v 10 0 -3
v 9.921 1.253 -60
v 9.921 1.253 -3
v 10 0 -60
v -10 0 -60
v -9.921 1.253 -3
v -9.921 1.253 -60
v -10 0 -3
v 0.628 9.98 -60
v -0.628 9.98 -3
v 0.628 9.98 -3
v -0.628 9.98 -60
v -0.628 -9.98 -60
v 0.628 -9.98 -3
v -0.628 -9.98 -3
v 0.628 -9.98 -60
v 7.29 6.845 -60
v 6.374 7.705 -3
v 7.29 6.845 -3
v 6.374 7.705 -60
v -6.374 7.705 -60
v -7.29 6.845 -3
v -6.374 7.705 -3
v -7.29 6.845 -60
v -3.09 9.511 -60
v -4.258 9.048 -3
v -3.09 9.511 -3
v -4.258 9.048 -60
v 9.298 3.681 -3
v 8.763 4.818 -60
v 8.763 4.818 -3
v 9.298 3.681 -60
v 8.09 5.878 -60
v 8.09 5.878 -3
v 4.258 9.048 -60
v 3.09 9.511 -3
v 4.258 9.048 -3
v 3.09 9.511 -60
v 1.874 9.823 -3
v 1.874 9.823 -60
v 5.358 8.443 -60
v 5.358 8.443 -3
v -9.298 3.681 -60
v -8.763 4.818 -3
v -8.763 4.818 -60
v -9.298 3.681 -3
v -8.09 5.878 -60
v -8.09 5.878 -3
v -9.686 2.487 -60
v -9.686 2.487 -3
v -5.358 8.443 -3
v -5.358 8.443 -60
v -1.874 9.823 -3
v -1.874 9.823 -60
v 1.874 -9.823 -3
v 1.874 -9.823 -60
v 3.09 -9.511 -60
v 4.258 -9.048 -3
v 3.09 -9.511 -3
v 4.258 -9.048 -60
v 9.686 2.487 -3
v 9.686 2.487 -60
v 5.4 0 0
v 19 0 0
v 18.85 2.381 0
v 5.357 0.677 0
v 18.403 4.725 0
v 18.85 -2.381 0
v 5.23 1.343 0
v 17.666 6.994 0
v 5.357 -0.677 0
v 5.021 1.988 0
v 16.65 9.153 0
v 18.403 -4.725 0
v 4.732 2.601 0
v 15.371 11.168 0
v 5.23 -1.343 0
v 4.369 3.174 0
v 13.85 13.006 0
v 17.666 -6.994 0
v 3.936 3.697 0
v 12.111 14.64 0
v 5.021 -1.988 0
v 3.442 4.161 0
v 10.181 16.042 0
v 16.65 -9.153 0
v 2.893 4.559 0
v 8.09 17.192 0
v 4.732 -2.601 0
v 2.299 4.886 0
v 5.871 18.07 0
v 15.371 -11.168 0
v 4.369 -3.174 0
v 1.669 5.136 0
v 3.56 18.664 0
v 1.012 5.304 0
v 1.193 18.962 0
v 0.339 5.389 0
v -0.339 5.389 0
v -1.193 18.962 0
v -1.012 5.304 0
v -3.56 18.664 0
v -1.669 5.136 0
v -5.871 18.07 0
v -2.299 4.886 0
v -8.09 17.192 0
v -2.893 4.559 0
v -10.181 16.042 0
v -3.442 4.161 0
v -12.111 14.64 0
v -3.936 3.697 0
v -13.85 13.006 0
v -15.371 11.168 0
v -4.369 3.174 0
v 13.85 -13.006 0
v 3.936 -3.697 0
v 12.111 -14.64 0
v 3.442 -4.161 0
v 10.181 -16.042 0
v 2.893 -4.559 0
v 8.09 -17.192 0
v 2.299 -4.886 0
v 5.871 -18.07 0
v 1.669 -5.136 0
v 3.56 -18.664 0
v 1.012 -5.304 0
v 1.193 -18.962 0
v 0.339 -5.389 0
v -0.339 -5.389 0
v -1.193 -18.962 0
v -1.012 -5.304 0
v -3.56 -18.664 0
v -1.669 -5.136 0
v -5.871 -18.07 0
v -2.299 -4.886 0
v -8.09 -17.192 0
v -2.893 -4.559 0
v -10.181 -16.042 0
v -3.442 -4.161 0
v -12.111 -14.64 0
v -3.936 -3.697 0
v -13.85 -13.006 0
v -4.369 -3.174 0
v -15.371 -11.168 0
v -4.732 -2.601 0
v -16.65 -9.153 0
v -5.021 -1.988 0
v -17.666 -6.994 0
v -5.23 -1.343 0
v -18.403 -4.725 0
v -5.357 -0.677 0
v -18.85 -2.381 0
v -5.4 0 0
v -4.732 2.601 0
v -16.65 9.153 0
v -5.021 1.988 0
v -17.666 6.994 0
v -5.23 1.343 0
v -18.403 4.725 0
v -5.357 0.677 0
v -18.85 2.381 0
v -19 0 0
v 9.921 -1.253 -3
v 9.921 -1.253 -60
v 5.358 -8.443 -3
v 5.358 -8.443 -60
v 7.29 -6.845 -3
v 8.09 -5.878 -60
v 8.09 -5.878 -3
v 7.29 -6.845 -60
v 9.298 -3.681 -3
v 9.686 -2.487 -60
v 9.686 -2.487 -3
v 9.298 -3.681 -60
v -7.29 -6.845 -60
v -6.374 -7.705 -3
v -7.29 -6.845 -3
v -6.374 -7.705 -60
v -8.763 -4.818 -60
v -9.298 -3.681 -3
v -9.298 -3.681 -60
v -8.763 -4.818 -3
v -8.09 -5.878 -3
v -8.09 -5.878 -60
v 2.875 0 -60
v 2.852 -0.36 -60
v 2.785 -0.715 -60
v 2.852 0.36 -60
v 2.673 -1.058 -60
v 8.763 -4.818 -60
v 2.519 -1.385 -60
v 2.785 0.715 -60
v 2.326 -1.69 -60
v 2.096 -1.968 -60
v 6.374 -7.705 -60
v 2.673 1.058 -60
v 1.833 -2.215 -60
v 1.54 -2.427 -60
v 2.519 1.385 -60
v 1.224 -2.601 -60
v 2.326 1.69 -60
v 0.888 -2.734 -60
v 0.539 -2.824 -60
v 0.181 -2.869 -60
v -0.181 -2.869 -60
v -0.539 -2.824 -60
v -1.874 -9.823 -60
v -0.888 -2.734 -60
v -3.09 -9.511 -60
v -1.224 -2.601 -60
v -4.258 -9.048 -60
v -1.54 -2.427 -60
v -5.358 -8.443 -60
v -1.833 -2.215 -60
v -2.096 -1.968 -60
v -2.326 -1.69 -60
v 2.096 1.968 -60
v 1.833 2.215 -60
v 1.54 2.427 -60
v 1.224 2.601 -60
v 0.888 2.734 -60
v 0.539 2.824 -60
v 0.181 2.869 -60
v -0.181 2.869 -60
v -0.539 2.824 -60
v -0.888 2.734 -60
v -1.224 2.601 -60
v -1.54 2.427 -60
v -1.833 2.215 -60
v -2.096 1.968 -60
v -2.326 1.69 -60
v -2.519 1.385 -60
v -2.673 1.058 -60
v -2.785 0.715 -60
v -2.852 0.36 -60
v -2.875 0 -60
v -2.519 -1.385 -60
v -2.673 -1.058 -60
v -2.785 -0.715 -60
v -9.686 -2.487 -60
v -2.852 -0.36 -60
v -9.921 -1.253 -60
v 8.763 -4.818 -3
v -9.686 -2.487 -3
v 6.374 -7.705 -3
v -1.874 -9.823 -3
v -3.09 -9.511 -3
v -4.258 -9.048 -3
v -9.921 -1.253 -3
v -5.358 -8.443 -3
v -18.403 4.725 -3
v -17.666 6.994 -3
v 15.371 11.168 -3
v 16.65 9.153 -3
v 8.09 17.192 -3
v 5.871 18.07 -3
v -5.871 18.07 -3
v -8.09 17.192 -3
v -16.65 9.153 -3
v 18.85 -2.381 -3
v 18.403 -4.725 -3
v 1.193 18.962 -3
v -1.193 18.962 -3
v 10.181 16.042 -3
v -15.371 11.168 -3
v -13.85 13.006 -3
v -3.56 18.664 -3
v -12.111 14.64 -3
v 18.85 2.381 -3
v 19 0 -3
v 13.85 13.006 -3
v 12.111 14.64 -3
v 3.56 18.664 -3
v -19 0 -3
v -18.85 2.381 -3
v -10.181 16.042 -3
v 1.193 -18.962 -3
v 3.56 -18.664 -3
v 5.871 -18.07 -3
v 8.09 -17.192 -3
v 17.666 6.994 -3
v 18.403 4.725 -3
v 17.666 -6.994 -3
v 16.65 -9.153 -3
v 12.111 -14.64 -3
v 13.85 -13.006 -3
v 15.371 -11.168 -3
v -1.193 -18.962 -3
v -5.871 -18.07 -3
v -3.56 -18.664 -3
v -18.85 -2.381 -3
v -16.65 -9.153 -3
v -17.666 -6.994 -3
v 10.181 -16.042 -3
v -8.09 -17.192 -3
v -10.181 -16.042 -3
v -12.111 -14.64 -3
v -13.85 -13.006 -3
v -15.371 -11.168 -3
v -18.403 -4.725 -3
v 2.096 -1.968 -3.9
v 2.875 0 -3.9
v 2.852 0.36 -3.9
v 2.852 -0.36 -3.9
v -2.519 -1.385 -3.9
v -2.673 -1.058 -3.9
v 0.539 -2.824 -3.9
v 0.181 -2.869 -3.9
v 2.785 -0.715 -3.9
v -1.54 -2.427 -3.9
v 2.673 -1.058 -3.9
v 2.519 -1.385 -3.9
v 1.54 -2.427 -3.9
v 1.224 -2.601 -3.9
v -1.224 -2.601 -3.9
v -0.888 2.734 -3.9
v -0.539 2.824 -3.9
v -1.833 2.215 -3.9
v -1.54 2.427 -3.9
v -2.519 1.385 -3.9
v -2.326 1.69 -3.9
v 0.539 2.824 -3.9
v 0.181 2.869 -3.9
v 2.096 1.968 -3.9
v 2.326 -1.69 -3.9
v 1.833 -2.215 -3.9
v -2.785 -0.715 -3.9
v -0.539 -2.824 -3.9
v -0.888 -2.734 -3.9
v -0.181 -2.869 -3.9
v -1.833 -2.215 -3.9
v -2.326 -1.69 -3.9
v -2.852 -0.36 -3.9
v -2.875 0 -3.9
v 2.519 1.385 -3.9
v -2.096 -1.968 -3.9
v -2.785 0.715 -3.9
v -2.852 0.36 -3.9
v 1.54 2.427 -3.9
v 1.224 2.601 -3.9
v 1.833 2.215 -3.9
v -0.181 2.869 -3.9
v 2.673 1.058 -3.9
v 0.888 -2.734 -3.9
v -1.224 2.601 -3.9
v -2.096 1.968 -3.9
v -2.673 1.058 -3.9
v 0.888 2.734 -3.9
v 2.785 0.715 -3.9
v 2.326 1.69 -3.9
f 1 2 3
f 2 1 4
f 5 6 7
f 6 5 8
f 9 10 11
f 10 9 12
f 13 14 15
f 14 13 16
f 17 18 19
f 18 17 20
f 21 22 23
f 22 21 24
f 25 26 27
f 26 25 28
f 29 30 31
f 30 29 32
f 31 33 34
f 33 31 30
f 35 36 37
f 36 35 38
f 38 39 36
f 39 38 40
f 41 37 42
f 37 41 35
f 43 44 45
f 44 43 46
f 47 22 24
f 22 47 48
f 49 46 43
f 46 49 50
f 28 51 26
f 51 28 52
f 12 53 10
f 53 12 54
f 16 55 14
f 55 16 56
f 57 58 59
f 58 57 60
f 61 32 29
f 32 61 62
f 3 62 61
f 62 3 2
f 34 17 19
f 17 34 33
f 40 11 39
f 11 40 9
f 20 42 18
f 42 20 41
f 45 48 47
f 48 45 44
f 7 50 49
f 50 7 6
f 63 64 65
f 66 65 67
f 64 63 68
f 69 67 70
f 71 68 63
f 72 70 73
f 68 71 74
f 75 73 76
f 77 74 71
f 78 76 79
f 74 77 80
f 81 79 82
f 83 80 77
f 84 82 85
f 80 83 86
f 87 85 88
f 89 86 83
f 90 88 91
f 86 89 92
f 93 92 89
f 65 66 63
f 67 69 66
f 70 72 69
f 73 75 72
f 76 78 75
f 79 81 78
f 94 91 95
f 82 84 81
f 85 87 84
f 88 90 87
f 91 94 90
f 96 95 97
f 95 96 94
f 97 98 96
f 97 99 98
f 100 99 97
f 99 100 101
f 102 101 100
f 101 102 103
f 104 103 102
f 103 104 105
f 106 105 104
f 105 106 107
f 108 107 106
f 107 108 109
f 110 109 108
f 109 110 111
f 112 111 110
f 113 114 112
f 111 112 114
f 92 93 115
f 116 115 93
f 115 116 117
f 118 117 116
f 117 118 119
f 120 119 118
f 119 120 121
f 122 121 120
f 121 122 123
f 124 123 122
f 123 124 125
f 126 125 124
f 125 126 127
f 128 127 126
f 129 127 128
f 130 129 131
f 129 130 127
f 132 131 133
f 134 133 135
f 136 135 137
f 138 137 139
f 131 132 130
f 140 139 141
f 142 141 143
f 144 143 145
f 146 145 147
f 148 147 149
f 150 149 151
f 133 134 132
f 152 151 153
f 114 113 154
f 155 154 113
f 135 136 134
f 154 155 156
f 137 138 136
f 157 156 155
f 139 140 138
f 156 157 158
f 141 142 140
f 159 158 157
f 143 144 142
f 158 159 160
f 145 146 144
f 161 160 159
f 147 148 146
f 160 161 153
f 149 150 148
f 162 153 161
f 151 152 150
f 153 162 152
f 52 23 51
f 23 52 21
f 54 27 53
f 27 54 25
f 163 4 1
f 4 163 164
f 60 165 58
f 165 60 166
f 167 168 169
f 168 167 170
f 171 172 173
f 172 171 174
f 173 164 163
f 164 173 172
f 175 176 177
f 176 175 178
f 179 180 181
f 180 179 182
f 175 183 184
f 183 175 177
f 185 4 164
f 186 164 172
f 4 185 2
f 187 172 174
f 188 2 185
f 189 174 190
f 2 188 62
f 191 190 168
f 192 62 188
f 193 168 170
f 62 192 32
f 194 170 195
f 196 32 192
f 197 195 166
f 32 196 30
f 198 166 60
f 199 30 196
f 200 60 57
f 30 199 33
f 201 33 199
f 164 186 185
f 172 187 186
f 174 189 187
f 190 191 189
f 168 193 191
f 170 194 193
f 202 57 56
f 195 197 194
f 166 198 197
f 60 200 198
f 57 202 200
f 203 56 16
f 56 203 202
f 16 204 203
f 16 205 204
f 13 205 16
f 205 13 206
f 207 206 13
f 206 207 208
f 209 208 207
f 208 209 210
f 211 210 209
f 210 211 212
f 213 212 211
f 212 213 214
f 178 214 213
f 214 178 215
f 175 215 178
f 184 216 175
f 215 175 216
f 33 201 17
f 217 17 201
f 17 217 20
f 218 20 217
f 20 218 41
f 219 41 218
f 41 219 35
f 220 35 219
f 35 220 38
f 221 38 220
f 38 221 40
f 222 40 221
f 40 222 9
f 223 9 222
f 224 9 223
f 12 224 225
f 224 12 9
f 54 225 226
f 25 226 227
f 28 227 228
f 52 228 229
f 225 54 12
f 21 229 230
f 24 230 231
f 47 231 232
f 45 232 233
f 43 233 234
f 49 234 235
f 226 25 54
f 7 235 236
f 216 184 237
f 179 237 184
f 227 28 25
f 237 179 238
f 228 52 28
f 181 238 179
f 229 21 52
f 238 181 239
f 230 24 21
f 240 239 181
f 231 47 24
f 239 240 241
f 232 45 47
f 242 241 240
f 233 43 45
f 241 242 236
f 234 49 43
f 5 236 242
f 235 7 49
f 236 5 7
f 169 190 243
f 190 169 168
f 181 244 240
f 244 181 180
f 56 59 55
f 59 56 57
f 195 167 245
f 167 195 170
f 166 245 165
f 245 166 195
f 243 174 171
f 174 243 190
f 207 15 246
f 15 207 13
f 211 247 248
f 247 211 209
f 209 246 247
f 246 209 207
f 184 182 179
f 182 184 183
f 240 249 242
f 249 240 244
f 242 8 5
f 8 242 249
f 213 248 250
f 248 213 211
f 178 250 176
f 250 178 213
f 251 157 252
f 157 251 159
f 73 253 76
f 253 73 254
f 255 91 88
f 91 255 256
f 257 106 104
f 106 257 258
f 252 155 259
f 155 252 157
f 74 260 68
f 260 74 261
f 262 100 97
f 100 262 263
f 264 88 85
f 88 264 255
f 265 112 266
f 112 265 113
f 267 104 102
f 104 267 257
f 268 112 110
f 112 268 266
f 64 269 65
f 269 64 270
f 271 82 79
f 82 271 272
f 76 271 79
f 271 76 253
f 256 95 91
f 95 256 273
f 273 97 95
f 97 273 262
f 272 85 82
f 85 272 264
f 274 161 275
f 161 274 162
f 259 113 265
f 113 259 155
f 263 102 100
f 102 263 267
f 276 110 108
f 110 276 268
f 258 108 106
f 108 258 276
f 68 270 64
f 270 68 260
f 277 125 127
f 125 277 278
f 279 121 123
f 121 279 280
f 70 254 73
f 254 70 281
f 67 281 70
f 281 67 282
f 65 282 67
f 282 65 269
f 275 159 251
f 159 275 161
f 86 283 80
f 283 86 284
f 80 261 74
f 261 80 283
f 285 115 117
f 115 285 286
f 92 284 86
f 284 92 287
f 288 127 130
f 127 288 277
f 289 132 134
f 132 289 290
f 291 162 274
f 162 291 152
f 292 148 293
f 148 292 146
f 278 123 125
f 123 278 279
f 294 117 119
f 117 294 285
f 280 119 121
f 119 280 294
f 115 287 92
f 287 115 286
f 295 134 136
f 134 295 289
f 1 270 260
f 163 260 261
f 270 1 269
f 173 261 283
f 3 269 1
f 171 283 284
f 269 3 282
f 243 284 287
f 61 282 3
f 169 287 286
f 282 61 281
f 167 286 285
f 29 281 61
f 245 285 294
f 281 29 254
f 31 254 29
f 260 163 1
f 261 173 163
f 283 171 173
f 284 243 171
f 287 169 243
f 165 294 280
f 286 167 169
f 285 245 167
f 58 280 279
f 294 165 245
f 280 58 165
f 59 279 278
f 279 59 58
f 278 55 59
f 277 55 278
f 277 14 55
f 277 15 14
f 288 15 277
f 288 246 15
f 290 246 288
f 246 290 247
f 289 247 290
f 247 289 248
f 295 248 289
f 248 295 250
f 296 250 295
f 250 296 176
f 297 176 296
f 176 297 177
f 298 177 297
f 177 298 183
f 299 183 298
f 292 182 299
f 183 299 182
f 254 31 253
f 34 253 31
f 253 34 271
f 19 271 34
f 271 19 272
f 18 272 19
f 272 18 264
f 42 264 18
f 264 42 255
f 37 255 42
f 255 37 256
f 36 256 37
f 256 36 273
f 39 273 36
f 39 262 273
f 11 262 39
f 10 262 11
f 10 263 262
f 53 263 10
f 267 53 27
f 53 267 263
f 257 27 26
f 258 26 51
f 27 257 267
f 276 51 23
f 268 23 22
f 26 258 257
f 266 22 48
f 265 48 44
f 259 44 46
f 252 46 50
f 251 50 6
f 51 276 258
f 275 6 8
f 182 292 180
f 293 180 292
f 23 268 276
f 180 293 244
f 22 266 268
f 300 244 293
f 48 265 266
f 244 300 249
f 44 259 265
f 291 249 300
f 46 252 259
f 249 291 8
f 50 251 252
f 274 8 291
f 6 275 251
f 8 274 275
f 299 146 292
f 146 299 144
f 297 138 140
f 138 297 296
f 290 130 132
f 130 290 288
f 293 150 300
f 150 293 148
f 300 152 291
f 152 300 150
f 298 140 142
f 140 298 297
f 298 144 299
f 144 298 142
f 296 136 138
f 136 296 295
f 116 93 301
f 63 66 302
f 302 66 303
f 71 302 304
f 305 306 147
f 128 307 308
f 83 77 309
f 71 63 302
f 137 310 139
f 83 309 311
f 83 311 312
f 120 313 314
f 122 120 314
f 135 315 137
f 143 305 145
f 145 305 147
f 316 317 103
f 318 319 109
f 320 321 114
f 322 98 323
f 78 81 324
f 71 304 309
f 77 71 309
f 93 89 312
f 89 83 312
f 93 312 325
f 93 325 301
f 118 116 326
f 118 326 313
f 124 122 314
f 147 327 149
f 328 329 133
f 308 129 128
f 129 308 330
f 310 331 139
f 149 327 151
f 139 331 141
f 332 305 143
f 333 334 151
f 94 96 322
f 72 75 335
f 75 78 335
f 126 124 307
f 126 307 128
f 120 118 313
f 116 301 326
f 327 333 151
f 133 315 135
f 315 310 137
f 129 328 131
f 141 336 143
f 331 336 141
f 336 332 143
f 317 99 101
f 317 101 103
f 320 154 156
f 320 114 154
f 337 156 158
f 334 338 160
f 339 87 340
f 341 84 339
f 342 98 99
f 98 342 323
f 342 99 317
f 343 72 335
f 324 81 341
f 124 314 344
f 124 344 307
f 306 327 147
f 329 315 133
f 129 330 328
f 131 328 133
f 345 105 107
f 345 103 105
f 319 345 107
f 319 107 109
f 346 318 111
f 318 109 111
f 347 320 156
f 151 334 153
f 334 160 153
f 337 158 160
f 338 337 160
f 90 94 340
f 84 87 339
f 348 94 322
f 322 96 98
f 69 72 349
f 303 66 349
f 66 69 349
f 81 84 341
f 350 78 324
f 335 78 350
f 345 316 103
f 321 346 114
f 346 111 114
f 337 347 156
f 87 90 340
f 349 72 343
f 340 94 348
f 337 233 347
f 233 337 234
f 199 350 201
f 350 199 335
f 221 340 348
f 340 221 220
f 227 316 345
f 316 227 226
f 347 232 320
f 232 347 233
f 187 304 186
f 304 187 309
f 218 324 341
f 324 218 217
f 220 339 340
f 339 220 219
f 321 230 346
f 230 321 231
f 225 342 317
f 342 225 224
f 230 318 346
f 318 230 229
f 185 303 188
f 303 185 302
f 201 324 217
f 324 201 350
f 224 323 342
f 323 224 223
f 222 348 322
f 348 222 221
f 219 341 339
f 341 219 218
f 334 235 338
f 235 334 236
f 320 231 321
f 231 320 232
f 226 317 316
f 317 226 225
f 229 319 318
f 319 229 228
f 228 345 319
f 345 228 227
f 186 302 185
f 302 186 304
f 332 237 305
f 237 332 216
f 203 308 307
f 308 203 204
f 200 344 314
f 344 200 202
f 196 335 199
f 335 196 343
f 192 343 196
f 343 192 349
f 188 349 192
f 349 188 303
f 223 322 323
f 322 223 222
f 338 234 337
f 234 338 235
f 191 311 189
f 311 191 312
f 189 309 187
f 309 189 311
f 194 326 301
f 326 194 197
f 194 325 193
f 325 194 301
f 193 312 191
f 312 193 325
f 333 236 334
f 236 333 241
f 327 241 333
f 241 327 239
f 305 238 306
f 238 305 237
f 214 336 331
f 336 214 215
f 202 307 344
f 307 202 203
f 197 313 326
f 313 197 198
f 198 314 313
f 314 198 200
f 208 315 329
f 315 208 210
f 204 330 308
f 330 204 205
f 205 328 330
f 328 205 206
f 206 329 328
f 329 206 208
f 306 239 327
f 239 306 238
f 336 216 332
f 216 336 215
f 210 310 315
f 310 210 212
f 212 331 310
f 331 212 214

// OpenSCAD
$fn = 50;


difference() {
	union() {
		translate(v = [0, 0, -60.0000000000]) {
			cylinder(h = 60, r = 10.0000000000);
		}
		translate(v = [0, 0, -3.0000000000]) {
			cylinder(h = 3, r = 19.0000000000);
		}
	}
	union() {
		translate(v = [0, 0, 0]) {
			rotate(a = [0, 0, 0]) {
				difference() {
					union() {
						#translate(v = [0, 0, -60.0000000000]) {
							cylinder(h = 60, r = 2.6000000000);
						}
						#translate(v = [0, 0, -3.9000000000]) {
							cylinder(h = 3.9000000000, r = 10.0000000000, r1 = 2.8750000000, r2 = 5.4000000000);
						}
						#translate(v = [0, 0, -60.0000000000]) {
							cylinder(h = 60, r = 2.8750000000);
						}
						#translate(v = [0, 0, -60.0000000000]) {
							cylinder(h = 60, r = 2.6000000000);
						}
					}
					union();
				}
			}
		}
	}
}
